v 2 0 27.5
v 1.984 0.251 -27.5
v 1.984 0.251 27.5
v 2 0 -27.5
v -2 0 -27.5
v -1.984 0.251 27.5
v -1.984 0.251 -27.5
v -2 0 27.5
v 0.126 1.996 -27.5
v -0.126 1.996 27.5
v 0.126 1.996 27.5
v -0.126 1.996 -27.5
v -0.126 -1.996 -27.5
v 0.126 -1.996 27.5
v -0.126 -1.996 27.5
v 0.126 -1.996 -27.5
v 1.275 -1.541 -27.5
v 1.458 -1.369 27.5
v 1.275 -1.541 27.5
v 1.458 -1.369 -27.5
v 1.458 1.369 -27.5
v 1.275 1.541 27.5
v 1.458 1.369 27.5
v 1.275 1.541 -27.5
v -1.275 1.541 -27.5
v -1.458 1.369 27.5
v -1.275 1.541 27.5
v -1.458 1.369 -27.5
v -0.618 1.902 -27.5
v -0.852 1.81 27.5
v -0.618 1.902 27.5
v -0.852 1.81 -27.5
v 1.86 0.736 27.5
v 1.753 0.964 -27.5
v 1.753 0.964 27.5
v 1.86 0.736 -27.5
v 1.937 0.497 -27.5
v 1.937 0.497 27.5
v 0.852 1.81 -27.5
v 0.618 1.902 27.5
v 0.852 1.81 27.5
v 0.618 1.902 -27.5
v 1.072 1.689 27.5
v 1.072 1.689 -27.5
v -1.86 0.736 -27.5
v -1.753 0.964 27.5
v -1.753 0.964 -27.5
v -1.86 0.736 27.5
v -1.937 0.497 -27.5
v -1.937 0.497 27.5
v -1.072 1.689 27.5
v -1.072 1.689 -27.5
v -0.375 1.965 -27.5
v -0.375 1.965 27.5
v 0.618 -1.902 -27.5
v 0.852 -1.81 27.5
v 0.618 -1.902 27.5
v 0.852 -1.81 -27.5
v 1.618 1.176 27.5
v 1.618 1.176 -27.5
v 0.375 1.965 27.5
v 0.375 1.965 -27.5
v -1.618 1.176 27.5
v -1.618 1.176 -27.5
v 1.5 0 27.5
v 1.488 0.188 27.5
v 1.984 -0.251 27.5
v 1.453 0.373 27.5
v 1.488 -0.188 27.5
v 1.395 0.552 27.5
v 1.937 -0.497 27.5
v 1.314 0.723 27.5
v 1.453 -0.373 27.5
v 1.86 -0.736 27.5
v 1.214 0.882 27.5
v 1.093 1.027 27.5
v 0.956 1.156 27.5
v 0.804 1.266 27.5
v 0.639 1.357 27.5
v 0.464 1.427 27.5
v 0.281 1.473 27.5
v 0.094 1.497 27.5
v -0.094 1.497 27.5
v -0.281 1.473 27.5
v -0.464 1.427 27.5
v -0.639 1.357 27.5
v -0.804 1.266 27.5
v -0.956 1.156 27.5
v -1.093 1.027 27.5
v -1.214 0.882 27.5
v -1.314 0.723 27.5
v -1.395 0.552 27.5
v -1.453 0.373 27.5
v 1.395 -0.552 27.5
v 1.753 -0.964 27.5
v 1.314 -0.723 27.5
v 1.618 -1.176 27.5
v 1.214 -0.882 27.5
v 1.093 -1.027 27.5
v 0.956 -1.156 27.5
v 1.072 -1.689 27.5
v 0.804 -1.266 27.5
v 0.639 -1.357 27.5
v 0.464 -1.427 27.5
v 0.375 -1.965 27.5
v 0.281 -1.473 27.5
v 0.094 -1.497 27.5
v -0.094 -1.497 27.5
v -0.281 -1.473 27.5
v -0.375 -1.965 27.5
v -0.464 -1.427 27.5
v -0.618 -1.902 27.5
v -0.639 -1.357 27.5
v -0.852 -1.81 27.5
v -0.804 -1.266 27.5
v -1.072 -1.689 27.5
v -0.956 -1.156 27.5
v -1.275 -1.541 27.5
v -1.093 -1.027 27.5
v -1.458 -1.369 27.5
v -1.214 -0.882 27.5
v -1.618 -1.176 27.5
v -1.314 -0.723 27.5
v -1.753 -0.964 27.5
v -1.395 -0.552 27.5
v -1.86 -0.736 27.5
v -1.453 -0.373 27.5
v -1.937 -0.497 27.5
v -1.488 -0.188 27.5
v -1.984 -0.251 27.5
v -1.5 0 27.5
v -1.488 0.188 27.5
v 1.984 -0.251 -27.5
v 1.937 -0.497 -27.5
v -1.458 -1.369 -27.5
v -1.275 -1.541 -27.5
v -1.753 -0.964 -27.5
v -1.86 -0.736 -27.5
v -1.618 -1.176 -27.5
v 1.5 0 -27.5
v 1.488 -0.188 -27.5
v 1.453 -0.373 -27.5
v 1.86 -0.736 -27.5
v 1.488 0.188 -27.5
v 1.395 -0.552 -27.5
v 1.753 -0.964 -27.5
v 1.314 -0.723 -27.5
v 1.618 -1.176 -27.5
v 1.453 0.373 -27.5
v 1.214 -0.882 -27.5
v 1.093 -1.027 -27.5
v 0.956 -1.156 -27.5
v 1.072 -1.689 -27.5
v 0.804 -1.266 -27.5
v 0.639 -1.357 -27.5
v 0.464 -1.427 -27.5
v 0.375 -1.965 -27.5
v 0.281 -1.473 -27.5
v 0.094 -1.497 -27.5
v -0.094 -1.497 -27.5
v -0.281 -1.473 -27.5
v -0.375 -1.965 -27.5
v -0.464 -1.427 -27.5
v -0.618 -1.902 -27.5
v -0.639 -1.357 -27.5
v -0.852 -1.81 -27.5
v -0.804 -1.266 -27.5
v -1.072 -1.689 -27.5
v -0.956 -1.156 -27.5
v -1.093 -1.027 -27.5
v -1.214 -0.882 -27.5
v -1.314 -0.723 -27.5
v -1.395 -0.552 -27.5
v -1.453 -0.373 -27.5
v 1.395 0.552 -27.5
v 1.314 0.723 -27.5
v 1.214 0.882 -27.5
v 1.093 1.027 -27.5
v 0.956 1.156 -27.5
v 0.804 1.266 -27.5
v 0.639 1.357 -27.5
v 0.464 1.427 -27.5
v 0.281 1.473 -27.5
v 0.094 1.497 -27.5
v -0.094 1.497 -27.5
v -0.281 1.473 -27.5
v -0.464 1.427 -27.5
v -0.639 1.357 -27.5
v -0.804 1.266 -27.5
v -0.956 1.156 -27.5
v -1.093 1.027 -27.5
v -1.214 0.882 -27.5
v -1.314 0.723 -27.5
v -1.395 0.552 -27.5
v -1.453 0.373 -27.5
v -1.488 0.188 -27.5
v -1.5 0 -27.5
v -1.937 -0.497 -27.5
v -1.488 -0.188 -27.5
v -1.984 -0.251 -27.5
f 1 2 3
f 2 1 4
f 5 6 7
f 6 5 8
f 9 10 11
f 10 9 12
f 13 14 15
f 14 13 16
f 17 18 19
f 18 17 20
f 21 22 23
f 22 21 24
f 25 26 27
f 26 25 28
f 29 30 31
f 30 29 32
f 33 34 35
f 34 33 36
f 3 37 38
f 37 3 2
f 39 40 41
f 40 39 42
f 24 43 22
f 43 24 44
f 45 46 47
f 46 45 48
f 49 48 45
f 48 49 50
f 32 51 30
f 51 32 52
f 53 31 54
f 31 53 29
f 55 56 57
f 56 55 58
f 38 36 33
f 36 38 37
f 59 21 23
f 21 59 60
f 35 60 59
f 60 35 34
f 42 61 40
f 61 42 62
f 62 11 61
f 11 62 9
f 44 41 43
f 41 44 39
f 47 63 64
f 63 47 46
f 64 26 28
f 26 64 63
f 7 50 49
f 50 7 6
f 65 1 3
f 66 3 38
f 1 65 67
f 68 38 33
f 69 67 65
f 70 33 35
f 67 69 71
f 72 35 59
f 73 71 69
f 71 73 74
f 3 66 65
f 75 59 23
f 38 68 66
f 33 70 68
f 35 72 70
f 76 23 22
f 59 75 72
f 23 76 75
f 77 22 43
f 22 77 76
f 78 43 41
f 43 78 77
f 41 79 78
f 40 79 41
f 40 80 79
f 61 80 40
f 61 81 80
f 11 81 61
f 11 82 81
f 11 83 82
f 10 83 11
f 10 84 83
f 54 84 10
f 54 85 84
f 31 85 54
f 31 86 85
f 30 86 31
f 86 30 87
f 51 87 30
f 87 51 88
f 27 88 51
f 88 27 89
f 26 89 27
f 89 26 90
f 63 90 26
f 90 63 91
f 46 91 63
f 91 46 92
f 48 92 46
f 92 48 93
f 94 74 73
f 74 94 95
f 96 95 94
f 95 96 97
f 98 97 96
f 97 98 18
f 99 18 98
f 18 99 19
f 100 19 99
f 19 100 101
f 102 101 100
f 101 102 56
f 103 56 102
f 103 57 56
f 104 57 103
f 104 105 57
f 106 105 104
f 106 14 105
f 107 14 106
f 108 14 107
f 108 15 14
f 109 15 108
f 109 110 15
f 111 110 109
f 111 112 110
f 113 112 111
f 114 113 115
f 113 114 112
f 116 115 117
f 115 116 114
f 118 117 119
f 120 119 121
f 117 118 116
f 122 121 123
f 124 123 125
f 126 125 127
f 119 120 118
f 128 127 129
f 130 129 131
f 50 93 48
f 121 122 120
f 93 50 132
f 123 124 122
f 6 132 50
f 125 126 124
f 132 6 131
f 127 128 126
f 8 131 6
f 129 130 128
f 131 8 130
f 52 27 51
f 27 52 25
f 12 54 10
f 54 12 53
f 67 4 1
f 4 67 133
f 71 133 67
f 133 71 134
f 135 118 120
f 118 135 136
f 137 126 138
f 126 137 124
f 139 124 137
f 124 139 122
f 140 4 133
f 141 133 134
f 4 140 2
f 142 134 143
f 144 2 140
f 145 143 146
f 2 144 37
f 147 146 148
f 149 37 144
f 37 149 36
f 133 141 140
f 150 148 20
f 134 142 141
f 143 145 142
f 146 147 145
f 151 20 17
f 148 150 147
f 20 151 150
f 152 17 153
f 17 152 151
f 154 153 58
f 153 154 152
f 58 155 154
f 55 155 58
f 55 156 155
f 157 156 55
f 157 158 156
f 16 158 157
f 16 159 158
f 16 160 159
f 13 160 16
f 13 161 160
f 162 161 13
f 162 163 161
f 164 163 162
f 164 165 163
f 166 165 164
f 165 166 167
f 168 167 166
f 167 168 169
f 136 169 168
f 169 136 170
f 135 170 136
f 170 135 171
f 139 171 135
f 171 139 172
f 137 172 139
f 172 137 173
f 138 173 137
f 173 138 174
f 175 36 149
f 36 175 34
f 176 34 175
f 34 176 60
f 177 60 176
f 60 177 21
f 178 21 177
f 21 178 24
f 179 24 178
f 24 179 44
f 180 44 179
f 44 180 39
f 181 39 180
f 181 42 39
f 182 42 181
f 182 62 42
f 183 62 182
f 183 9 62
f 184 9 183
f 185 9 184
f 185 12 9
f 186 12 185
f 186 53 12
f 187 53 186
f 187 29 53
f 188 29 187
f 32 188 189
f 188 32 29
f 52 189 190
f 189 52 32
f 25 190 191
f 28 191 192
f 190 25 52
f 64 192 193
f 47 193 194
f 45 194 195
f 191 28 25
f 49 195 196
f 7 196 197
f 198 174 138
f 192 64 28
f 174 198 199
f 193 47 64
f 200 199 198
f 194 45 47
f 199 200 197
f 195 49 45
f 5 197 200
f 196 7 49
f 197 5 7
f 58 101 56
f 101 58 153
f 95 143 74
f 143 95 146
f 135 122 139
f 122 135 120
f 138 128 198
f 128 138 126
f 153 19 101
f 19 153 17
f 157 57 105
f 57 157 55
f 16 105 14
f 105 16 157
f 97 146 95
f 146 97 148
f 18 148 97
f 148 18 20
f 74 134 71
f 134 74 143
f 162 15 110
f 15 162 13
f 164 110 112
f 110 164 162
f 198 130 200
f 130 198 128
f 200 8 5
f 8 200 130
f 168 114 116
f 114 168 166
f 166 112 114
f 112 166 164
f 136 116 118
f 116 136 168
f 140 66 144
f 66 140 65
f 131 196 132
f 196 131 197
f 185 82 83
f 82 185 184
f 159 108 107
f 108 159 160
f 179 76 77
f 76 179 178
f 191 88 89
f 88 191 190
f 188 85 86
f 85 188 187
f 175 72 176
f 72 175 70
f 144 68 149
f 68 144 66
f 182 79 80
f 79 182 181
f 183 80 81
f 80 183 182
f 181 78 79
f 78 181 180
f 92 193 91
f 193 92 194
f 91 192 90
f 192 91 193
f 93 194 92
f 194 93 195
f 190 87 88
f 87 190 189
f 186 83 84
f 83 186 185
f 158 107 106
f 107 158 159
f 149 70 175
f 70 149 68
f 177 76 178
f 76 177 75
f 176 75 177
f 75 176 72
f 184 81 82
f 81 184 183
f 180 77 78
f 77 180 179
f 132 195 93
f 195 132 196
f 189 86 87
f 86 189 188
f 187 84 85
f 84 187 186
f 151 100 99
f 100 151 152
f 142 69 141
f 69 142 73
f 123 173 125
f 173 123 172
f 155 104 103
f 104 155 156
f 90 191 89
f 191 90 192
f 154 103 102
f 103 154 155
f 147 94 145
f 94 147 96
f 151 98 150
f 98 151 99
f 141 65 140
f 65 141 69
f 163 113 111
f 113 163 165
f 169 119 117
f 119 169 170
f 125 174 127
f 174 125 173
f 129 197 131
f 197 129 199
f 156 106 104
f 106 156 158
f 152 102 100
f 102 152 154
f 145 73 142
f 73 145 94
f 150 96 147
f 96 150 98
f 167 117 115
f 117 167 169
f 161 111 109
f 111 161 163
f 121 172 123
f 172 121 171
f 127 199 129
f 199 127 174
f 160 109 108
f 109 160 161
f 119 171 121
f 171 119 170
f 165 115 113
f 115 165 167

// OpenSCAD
$fn = 50;


difference() {
	union() {
		translate(v = [0, 0, -27.5000000000]) {
			cylinder(h = 55, r = 2.0000000000);
		}
	}
	union() {
		translate(v = [0, 0, -100.0000000000]) {
			cylinder(h = 200, r = 1.5000000000);
		}
	}
}
